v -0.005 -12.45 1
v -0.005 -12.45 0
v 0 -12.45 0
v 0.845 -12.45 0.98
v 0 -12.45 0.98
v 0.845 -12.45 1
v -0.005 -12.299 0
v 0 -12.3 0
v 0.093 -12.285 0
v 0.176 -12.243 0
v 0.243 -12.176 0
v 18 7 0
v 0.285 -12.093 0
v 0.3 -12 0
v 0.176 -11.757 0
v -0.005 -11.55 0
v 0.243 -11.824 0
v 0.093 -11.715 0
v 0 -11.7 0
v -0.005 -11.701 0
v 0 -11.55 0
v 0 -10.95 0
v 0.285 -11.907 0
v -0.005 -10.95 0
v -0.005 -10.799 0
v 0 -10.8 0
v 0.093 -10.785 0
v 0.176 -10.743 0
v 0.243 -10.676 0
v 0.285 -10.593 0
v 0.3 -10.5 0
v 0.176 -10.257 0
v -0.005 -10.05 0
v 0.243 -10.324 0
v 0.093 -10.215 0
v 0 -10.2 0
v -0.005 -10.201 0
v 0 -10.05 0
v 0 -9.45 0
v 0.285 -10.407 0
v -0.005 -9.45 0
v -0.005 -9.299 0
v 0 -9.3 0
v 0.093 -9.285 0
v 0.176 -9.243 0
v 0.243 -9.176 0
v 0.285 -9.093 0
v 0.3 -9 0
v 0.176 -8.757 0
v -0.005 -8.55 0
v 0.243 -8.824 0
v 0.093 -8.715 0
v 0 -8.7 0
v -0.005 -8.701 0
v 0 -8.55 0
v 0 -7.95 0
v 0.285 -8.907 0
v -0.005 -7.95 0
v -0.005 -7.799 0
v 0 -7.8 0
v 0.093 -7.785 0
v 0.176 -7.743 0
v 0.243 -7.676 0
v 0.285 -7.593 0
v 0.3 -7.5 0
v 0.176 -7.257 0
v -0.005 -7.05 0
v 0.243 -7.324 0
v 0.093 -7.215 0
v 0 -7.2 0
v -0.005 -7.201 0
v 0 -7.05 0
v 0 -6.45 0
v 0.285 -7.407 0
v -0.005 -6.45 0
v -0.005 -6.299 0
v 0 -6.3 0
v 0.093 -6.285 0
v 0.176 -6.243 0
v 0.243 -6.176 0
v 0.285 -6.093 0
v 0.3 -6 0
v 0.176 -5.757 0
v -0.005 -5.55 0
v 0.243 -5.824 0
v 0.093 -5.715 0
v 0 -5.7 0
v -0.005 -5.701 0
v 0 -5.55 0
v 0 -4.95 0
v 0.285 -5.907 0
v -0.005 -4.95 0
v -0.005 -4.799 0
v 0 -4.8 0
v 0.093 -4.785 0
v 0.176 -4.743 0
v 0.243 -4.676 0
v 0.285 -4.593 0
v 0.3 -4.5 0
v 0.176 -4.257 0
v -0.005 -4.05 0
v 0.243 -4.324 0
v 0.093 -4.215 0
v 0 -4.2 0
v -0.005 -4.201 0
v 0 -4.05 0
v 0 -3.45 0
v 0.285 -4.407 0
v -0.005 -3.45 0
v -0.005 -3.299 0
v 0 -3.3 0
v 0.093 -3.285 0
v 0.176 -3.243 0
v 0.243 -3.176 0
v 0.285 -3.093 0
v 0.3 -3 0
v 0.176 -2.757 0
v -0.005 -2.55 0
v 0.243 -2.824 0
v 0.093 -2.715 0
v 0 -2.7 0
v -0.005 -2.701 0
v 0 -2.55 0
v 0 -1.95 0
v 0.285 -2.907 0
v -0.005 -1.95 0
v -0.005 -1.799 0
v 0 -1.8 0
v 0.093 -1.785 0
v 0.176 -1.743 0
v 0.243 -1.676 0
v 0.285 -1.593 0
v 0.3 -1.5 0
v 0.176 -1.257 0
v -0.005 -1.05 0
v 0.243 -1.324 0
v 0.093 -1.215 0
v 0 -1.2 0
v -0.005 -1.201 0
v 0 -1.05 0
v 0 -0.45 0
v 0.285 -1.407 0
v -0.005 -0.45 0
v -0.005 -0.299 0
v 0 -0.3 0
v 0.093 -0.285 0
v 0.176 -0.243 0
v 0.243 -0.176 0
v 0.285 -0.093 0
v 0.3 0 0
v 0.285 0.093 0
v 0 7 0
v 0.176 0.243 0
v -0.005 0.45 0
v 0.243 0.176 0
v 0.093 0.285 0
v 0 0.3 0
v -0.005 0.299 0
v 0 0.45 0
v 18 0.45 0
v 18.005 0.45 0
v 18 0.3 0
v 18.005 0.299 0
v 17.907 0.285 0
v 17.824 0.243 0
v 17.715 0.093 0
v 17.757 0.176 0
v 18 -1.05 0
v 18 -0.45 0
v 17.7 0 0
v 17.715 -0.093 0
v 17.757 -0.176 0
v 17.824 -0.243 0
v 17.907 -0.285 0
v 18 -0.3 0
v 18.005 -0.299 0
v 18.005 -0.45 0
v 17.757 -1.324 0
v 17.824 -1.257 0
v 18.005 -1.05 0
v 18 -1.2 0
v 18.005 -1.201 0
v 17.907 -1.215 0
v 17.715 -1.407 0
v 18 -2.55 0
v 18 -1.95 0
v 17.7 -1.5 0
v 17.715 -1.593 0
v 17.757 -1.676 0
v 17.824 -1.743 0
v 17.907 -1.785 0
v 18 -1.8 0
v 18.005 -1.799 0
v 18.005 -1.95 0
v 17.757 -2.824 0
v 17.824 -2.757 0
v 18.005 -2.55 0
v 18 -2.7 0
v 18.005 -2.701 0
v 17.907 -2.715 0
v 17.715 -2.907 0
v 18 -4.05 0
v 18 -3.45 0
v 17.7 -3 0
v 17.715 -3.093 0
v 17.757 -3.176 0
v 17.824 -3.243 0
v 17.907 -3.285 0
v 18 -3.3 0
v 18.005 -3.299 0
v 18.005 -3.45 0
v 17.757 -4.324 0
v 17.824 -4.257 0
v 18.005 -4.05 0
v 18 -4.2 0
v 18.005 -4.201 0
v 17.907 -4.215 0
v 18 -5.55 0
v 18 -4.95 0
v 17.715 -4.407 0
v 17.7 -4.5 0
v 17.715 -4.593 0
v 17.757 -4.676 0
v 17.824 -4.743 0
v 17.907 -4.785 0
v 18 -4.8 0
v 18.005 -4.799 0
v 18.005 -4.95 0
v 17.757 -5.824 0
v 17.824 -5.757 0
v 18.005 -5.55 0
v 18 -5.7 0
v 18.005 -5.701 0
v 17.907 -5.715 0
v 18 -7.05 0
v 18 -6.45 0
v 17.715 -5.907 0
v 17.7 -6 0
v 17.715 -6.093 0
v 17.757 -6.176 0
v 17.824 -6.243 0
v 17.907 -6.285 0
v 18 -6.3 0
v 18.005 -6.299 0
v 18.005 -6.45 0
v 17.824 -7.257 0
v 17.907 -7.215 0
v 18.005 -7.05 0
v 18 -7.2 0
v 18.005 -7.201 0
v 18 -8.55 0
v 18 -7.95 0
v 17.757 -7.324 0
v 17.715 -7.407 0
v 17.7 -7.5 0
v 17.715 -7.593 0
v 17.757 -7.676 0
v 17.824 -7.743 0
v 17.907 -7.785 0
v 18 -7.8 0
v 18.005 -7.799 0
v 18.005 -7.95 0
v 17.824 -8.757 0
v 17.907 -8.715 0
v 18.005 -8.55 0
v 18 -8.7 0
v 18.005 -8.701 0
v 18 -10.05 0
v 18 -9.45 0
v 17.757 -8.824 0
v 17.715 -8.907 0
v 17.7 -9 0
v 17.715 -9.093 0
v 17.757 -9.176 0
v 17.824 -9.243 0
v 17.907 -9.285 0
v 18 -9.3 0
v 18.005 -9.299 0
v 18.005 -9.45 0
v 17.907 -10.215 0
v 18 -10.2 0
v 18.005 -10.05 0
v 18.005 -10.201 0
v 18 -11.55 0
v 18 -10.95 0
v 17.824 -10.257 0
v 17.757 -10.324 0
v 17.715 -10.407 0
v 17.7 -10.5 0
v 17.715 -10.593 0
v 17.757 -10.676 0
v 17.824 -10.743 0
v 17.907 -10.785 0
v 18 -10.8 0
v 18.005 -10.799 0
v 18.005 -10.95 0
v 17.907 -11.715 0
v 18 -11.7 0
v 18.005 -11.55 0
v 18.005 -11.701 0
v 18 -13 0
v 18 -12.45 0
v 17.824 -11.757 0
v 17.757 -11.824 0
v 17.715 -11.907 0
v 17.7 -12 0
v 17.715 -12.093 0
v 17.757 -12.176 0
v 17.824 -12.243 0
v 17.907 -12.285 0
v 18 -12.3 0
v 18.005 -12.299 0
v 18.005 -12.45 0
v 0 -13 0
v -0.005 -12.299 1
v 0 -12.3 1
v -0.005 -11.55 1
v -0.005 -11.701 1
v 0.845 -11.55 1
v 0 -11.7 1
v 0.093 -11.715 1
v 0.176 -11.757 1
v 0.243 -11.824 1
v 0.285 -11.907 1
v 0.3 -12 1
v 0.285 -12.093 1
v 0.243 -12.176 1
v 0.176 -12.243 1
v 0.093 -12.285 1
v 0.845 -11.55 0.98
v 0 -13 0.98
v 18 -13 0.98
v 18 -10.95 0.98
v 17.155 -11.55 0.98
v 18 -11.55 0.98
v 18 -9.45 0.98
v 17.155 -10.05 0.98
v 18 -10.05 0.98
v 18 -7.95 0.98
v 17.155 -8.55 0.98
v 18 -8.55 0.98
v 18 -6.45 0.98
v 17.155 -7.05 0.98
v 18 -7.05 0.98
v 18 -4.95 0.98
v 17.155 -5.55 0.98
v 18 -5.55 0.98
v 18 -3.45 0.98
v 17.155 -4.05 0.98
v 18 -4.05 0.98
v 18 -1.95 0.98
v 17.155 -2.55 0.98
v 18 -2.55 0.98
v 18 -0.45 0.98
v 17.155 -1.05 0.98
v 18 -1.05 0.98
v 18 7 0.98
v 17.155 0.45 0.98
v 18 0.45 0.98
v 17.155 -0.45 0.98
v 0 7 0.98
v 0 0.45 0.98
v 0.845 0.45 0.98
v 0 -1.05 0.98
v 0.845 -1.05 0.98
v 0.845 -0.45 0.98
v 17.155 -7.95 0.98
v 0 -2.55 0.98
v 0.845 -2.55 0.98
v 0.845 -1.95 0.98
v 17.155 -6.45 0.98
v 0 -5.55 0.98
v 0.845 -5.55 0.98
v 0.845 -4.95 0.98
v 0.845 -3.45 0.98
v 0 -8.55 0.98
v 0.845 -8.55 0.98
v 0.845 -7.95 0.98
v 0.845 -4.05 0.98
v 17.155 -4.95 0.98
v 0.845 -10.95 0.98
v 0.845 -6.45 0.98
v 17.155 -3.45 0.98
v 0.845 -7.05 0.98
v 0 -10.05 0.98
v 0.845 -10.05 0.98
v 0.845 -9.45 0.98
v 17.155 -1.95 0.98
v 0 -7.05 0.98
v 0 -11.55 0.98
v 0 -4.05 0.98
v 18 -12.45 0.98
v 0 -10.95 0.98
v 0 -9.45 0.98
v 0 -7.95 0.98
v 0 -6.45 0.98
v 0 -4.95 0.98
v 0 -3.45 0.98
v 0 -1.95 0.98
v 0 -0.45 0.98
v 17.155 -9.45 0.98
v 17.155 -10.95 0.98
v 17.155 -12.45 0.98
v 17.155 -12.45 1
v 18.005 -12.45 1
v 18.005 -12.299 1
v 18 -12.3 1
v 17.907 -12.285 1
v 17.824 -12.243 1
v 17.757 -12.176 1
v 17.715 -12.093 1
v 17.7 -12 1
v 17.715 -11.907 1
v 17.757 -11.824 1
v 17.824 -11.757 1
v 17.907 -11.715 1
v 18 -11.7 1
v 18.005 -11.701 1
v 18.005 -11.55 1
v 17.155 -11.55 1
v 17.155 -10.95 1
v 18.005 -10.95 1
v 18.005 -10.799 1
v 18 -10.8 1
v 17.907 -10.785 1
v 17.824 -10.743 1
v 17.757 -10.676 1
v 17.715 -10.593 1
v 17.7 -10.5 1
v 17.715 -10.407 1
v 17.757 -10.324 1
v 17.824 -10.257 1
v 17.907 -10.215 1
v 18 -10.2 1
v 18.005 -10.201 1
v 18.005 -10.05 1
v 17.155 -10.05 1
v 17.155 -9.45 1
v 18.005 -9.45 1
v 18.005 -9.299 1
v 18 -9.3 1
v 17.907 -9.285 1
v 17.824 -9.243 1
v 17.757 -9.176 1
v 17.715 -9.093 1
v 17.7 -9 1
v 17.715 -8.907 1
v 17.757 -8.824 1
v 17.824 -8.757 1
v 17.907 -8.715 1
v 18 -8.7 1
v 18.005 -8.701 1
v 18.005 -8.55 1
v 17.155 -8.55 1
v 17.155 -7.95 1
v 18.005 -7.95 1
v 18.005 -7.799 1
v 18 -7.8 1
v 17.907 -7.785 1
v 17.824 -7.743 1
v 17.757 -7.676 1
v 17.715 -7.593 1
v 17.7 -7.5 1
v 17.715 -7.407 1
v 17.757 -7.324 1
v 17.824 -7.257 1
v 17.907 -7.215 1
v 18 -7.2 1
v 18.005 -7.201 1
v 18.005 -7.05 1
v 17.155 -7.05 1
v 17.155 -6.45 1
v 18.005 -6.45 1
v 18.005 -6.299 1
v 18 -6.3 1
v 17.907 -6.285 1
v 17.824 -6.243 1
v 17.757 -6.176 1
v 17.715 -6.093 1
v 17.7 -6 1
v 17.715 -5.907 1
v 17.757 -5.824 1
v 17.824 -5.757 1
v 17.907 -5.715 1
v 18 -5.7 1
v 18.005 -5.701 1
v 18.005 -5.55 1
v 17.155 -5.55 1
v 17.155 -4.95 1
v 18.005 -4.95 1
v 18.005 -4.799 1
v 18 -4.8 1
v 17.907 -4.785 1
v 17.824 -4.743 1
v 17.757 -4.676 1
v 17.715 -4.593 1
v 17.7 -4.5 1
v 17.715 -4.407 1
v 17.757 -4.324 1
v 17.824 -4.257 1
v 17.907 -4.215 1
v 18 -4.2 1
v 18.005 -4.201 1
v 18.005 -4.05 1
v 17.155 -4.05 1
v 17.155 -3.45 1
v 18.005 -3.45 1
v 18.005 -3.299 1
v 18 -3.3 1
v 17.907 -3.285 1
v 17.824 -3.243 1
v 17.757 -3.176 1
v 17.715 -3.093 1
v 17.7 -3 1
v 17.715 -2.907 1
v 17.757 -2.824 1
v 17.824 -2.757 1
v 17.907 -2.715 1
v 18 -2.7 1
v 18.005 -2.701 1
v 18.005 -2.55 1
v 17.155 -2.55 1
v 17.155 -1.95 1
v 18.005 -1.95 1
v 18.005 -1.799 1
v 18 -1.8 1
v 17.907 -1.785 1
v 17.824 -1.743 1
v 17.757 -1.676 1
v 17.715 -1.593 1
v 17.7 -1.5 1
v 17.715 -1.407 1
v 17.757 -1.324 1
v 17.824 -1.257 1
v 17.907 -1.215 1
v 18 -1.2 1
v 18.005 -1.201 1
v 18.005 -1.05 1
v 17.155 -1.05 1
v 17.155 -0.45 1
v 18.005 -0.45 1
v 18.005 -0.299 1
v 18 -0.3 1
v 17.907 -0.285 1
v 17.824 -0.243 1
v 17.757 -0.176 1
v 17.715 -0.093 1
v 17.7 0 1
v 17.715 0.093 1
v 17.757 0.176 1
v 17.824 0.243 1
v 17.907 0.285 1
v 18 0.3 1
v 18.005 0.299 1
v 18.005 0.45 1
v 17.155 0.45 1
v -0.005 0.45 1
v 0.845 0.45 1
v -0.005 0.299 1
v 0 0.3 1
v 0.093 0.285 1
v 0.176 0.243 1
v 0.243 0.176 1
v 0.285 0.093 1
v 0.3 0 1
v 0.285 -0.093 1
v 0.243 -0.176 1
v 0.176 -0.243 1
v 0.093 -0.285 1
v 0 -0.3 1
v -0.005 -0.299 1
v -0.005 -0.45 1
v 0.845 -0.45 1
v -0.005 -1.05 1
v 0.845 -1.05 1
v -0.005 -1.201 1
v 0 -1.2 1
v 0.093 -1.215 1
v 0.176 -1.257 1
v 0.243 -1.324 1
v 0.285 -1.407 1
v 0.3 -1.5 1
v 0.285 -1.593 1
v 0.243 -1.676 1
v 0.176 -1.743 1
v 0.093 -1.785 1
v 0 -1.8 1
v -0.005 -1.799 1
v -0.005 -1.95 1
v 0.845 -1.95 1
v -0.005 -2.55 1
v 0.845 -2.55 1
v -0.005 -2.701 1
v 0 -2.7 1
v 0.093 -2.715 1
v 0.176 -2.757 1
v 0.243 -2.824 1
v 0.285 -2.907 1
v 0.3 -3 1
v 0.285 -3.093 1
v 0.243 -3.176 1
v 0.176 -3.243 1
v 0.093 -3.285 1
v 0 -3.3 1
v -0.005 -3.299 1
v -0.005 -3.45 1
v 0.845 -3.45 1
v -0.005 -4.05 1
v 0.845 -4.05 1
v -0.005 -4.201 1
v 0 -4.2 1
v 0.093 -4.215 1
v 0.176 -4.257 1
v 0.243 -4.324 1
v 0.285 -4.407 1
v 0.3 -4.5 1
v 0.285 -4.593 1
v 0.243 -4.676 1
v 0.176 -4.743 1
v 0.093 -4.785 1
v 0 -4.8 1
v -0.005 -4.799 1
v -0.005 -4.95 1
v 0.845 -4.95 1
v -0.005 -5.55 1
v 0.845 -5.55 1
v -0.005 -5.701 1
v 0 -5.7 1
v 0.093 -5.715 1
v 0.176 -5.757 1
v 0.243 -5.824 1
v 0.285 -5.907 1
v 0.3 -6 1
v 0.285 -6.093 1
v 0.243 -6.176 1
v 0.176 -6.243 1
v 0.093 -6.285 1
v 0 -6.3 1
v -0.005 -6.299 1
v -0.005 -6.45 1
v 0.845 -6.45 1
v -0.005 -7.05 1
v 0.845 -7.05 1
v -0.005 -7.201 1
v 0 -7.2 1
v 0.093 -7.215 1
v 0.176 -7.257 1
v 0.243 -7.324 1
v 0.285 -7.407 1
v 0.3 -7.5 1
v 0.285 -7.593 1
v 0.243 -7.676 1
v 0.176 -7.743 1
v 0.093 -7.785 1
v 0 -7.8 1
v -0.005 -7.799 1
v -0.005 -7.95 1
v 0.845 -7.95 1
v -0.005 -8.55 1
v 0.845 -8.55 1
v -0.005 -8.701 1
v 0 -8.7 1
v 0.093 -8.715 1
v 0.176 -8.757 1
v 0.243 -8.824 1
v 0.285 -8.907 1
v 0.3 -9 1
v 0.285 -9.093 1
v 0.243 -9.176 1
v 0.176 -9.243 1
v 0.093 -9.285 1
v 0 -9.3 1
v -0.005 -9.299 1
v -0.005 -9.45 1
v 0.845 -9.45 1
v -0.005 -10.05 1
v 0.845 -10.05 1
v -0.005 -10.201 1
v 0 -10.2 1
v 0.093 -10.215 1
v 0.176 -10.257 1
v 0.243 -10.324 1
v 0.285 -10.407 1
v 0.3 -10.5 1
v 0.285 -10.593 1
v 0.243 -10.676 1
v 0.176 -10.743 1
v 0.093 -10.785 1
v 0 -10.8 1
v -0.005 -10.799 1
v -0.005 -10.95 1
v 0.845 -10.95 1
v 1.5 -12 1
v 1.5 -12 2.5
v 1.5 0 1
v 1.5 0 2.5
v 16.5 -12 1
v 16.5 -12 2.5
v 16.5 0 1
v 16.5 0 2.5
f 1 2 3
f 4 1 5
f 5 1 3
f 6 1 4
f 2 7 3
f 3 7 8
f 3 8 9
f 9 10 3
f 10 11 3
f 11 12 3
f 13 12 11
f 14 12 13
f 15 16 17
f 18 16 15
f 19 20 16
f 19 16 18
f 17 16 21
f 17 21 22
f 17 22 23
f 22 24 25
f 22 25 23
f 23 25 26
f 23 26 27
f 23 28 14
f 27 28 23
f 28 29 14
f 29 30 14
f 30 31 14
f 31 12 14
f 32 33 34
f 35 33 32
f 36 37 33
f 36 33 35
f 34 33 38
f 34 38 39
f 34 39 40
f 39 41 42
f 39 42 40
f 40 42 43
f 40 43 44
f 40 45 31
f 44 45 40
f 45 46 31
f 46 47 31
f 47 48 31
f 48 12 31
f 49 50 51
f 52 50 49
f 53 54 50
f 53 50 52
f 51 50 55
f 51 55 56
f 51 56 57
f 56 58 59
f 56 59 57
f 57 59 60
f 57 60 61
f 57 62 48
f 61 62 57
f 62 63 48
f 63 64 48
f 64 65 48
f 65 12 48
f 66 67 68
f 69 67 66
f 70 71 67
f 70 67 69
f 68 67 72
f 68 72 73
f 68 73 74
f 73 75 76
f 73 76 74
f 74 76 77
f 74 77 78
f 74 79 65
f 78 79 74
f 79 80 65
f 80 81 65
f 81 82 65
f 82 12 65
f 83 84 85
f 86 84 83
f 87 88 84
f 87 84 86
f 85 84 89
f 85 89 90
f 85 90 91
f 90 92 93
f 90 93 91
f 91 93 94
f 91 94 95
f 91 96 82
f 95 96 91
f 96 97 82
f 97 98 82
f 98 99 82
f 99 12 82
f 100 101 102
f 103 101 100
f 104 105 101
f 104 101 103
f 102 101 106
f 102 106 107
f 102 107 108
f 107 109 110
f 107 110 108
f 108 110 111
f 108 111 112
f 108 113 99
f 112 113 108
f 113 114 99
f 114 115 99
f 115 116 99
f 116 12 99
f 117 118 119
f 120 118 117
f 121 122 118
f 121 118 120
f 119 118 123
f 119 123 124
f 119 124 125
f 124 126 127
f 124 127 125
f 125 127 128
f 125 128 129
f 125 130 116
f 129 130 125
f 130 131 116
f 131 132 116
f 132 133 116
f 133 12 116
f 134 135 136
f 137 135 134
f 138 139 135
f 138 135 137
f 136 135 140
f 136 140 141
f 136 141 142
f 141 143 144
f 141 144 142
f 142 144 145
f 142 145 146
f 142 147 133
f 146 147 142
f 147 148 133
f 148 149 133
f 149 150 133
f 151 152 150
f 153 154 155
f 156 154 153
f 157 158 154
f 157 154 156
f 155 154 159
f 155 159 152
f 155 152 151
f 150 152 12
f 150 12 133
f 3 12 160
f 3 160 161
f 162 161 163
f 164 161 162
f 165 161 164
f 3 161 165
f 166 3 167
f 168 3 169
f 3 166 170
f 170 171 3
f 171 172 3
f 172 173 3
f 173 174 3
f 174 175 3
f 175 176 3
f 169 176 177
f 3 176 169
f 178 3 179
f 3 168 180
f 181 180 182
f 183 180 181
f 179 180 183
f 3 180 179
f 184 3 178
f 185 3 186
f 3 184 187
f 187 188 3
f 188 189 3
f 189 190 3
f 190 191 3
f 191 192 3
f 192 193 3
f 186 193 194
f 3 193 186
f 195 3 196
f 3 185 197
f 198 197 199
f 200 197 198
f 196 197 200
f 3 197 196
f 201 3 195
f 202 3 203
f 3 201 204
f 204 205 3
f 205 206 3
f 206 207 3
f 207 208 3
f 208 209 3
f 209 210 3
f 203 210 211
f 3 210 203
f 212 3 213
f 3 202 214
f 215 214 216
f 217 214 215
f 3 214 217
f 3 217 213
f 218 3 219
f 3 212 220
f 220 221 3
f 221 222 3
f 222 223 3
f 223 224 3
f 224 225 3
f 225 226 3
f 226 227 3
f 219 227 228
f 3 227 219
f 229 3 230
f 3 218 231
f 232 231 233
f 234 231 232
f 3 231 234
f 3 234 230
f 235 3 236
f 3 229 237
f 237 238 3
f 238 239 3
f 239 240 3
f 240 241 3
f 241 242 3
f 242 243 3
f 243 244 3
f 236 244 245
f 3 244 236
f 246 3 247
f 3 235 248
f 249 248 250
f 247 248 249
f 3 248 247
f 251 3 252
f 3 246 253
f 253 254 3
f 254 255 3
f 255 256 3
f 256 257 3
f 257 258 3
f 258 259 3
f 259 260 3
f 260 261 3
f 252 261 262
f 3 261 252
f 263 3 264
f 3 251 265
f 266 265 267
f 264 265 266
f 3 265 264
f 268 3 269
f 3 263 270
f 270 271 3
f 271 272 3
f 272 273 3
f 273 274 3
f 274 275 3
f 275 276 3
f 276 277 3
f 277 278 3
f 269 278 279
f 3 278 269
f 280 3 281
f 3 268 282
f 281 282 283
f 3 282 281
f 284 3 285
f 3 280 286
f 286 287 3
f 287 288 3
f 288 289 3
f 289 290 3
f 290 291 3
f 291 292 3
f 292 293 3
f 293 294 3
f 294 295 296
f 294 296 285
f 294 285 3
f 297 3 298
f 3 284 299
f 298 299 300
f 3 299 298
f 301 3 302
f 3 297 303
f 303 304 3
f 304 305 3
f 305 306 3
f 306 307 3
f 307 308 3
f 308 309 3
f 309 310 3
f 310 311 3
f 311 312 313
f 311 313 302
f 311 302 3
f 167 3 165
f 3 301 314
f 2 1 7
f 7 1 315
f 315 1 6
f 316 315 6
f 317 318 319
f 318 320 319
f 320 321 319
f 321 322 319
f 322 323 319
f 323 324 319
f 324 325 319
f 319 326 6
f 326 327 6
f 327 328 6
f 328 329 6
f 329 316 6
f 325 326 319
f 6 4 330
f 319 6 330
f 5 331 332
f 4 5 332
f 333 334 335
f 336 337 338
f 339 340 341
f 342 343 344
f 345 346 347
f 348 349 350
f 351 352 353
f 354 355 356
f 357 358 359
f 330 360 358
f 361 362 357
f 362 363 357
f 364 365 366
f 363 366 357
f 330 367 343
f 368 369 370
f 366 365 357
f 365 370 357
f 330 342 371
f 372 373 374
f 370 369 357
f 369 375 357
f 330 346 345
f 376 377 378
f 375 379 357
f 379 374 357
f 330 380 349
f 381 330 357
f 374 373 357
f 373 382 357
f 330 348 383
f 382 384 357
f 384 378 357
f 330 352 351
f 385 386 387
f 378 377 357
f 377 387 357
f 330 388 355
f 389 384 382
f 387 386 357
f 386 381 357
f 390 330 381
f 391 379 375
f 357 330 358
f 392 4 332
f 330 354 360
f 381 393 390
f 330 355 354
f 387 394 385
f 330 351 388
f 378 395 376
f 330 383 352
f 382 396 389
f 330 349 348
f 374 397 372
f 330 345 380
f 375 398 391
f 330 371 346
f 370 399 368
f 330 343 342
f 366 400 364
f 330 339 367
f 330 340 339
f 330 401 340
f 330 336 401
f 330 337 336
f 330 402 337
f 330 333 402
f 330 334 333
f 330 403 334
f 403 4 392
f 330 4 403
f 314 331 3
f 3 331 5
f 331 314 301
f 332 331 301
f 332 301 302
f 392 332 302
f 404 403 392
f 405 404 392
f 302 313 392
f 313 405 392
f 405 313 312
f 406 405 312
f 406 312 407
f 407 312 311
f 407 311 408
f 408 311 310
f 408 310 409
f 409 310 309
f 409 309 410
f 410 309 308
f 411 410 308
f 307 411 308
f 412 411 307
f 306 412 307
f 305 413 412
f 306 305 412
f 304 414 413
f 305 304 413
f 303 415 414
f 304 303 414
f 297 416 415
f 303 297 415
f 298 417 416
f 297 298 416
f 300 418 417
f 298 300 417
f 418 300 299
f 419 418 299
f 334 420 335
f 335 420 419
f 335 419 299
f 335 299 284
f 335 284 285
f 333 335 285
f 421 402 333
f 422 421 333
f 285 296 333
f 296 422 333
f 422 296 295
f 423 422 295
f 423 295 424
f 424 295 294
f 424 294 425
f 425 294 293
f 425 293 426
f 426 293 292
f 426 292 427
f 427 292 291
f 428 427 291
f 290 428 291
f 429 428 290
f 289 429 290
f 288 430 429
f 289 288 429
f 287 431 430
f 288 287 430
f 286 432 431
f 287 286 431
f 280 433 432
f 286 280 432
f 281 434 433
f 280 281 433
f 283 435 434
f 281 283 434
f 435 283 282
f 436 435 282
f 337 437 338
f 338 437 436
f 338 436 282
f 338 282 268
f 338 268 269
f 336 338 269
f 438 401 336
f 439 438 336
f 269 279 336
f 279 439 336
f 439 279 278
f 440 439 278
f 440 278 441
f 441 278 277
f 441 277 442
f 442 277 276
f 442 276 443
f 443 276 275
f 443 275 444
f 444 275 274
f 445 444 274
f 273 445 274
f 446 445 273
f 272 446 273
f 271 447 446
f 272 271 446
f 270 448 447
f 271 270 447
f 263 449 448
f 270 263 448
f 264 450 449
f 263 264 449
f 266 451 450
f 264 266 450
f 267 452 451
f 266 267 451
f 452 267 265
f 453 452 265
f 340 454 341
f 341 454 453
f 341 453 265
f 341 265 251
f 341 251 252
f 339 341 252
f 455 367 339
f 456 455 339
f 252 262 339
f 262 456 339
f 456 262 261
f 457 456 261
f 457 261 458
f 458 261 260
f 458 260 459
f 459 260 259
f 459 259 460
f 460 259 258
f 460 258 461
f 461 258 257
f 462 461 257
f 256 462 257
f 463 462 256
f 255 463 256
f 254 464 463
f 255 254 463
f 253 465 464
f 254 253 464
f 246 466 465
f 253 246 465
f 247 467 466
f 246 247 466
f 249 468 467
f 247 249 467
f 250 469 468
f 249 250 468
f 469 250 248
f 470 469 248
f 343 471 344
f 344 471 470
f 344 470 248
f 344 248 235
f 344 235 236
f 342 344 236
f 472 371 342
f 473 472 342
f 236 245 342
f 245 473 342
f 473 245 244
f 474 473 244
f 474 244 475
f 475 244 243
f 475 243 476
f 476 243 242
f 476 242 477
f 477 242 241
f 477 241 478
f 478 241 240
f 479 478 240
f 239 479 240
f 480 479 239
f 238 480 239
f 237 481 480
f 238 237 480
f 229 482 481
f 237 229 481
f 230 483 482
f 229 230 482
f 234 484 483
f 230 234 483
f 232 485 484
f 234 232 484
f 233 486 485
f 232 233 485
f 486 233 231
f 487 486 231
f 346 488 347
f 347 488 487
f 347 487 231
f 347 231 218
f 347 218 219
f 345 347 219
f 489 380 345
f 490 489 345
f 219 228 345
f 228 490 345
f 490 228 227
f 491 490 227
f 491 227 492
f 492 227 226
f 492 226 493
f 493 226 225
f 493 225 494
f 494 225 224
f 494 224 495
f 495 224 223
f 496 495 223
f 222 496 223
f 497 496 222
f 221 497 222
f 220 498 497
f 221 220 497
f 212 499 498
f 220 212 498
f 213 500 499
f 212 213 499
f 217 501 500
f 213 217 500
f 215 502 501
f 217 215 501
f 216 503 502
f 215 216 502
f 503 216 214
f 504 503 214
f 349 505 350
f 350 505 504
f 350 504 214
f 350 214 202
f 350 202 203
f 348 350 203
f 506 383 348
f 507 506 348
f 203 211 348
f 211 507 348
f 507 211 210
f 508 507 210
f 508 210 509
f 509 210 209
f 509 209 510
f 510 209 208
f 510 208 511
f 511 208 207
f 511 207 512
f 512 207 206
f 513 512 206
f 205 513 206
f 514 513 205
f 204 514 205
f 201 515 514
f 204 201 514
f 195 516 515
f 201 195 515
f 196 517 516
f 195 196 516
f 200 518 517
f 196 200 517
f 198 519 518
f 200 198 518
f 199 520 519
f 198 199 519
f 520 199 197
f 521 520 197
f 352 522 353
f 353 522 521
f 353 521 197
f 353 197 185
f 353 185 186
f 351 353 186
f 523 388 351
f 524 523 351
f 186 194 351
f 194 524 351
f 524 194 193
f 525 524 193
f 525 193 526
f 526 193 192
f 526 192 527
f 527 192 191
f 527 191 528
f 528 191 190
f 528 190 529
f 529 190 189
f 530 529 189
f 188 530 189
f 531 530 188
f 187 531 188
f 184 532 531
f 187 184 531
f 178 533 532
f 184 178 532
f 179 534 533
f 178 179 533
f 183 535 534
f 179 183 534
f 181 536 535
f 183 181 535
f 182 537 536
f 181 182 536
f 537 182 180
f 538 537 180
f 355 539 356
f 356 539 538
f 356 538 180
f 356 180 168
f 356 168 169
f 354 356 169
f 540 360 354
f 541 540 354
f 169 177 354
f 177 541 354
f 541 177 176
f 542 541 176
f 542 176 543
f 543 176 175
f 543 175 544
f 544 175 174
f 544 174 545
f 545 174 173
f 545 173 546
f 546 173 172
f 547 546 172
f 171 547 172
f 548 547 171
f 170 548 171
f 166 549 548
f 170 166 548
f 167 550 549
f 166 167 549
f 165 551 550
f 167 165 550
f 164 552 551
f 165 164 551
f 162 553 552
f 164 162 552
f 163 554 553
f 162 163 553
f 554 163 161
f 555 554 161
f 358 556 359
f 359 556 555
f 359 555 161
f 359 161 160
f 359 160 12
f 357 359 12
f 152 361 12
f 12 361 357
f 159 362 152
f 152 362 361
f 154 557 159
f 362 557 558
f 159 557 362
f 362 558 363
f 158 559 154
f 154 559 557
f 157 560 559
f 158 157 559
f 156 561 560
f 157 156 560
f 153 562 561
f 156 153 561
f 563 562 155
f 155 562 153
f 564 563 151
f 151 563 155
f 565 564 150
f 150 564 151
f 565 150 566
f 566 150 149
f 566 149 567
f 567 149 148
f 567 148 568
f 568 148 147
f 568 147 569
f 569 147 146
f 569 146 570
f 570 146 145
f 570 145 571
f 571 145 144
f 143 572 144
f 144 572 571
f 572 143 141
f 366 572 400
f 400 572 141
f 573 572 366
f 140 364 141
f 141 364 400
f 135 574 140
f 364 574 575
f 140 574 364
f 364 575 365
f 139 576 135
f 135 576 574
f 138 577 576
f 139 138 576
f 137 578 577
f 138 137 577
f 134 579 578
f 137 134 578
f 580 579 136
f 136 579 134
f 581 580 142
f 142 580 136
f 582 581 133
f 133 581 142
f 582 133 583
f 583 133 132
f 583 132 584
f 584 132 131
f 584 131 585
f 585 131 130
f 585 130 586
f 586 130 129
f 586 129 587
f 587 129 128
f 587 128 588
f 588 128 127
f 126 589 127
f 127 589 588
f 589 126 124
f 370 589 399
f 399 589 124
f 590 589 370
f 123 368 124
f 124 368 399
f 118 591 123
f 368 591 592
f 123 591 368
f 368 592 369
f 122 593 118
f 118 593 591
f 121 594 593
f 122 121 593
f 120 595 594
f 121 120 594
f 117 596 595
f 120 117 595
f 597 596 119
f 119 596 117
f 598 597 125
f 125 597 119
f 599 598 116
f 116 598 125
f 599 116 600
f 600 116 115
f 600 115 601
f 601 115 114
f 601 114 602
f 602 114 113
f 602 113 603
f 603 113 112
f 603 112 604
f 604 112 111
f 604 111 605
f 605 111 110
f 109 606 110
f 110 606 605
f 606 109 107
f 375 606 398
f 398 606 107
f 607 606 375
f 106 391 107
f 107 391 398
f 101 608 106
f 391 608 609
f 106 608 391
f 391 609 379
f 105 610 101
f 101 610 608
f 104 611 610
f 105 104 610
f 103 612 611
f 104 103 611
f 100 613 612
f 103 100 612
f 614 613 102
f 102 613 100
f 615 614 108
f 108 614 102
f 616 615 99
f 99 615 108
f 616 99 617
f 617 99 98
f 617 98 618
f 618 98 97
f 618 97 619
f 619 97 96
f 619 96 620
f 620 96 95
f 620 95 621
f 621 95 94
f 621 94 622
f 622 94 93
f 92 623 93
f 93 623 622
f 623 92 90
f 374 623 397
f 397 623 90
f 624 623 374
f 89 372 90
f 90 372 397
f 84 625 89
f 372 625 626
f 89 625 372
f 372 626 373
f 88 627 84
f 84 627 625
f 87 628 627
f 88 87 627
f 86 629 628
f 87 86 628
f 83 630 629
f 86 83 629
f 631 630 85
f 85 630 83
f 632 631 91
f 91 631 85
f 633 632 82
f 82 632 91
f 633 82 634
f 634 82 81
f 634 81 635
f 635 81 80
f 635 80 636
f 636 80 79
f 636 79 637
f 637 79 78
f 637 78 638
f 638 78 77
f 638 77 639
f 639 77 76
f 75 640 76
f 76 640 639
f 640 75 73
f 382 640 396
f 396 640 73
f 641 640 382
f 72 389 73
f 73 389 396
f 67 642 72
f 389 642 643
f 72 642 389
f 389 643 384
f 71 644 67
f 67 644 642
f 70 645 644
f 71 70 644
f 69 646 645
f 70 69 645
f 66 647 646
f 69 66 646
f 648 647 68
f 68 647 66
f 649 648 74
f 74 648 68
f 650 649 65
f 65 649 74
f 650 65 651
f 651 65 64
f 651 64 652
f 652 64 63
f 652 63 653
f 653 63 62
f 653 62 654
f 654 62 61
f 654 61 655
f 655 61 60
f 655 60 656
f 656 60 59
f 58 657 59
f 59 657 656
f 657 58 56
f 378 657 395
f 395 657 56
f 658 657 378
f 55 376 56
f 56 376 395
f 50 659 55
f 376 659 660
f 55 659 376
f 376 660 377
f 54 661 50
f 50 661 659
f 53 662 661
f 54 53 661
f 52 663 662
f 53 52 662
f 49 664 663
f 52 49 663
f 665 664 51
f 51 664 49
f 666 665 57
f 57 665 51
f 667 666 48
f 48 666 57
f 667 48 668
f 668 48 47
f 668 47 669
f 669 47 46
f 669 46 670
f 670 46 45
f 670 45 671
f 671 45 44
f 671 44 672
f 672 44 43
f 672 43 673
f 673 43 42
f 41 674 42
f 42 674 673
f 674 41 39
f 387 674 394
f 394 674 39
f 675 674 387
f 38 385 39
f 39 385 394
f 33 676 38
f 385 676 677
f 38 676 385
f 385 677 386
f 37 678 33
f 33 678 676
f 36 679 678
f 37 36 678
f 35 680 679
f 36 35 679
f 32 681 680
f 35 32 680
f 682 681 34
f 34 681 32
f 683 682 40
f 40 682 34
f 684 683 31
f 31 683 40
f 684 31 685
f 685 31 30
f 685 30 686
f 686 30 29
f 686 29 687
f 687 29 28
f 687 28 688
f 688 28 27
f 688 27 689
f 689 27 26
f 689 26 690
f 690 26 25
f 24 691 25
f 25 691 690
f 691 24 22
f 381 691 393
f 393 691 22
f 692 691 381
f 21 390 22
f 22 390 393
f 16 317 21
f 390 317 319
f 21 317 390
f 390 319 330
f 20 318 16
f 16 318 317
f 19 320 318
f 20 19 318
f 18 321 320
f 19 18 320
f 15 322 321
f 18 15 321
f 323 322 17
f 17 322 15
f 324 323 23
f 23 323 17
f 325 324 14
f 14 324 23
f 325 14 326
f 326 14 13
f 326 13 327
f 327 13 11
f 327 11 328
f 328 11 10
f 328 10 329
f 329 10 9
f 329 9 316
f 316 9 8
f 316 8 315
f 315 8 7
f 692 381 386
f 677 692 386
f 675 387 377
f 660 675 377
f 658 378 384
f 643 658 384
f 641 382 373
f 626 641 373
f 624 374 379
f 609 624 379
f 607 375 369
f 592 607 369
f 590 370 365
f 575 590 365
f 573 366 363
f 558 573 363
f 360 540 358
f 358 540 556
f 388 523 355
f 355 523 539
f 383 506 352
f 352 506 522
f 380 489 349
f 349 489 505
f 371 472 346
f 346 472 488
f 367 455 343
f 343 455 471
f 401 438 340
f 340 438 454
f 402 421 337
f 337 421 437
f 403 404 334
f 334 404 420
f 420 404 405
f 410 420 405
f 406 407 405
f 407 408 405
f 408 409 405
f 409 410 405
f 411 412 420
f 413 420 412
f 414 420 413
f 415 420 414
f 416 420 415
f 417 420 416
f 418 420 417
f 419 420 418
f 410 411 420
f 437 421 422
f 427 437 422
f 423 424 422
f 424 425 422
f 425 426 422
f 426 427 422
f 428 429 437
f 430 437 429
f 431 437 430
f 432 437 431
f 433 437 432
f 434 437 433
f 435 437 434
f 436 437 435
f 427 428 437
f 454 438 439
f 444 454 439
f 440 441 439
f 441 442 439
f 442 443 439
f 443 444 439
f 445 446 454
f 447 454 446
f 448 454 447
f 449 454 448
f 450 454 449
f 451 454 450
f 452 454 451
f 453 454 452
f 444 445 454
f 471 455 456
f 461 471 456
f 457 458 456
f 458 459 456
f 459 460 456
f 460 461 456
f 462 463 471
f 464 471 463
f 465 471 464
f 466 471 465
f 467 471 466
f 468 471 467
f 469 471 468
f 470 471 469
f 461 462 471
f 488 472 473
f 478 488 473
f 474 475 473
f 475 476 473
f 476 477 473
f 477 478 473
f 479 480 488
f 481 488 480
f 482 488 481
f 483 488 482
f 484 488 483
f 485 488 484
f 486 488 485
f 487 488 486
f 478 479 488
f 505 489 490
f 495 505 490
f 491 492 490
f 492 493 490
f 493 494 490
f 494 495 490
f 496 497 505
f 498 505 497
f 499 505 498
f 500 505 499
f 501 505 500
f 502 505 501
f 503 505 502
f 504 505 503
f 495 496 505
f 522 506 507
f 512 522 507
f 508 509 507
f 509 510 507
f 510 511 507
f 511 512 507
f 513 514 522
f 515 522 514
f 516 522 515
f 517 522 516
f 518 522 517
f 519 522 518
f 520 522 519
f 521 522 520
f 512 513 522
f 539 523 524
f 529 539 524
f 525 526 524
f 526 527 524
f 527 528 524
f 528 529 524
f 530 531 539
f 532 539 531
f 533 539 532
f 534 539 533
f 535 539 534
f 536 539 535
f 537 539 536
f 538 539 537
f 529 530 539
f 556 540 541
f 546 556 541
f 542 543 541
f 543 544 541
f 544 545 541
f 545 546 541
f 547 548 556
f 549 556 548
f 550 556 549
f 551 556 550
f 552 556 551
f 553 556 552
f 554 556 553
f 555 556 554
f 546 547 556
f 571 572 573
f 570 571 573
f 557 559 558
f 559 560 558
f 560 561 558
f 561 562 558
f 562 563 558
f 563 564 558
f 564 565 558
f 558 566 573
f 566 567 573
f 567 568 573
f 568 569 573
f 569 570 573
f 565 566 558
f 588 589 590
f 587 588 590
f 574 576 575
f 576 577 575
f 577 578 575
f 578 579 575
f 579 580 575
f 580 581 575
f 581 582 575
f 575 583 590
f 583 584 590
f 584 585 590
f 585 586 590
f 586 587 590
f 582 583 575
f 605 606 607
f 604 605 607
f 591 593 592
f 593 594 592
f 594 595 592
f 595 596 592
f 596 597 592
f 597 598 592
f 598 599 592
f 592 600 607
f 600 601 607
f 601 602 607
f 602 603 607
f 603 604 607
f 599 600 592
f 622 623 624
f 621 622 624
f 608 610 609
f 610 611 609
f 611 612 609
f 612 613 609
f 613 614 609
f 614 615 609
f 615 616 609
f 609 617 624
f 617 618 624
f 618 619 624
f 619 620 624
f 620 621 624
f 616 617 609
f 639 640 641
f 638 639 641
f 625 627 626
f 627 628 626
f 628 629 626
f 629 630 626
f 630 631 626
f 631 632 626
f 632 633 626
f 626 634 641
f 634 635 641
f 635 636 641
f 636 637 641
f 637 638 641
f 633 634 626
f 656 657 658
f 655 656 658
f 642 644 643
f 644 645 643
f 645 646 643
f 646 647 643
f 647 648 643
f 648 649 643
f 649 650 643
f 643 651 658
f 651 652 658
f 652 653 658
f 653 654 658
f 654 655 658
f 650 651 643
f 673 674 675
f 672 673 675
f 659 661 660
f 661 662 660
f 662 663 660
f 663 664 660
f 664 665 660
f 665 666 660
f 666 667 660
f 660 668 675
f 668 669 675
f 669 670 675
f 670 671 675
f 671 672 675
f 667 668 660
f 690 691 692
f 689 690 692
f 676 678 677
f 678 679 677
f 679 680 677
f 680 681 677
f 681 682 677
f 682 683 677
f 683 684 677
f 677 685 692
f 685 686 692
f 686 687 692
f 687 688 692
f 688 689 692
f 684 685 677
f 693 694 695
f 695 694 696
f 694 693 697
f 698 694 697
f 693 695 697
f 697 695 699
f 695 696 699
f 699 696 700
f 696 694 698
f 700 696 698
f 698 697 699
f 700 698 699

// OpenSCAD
fragments=20;
module halfPad() {
    color("Gold", a=1) {
        difference() {
            translate([0, 0, 0.5]) {
            		cube(size=[0.85,0.90,1], center=true);
        		};
			};
    };
};

module padHoles(x, y, zRot = 0) {
    rotate([0, 0, zRot]) {
        translate([x, y, 0.5]) {
            cylinder(h=2,d=0.6,center=true,$fn=fragments);
        };
    };
};

module pad(x, y, zRot = 0) {
    rotate([0, 0, zRot]) {
        translate([x, y, 0]) {
            halfPad();
        };
    };
};

module pads() {
	
	pad(17.58,-12);
	pad(17.58,-10.5);
   pad(17.58,-9);
   pad(17.58,-7.5);
   pad(17.58,-6);
   pad(17.58,-4.5);
   pad(17.58,-3);
   pad(17.58,-1.5);
   pad(17.58,0);

   pad(-0.42,0,180);
   pad(-0.42,1.5,180);
   pad(-0.42,3,180);
   pad(-0.42,4.5,180);
   pad(-0.42,6,180);
   pad(-0.42,7.5,180);
   pad(-0.42,9,180);
   pad(-0.42,10.5,180);
   pad(-0.42,12,180);

};

module holes() {

   padHoles(18,-12);
   padHoles(18,-10.5);
   padHoles(18,-9);
   padHoles(18,-7.5);
   padHoles(18,-6);
   padHoles(18,-4.5);
   padHoles(18,-3);
   padHoles(18,-1.5);
   padHoles(18,0);
   
   padHoles(0,0,180);
   padHoles(0,1.5,180);
   padHoles(0,3,180);
   padHoles(0,4.5,180);
   padHoles(0,6,180);
   padHoles(0,7.5,180);
   padHoles(0,9,180);
   padHoles(0,10.5,180);
   padHoles(0,12,180);
};

// Translate so that pin 1 and the bottom of the board
// is the reference point (0,0,0)
translate([0,0,0]) {
	// pcb
   difference() {
       union() {
           color("Blue", a=1) {
               translate([0, -13, 0]) {
                   cube(size=[18, 20, .98], center = false);
               };
           };
           pads();
       };
       holes();
   };

   //shield
   translate([1.5, -12, 1]) {
		color("Silver", a=1) {
			cube(size=[15, 12, 1.5], center = false);
		};
	};
};
